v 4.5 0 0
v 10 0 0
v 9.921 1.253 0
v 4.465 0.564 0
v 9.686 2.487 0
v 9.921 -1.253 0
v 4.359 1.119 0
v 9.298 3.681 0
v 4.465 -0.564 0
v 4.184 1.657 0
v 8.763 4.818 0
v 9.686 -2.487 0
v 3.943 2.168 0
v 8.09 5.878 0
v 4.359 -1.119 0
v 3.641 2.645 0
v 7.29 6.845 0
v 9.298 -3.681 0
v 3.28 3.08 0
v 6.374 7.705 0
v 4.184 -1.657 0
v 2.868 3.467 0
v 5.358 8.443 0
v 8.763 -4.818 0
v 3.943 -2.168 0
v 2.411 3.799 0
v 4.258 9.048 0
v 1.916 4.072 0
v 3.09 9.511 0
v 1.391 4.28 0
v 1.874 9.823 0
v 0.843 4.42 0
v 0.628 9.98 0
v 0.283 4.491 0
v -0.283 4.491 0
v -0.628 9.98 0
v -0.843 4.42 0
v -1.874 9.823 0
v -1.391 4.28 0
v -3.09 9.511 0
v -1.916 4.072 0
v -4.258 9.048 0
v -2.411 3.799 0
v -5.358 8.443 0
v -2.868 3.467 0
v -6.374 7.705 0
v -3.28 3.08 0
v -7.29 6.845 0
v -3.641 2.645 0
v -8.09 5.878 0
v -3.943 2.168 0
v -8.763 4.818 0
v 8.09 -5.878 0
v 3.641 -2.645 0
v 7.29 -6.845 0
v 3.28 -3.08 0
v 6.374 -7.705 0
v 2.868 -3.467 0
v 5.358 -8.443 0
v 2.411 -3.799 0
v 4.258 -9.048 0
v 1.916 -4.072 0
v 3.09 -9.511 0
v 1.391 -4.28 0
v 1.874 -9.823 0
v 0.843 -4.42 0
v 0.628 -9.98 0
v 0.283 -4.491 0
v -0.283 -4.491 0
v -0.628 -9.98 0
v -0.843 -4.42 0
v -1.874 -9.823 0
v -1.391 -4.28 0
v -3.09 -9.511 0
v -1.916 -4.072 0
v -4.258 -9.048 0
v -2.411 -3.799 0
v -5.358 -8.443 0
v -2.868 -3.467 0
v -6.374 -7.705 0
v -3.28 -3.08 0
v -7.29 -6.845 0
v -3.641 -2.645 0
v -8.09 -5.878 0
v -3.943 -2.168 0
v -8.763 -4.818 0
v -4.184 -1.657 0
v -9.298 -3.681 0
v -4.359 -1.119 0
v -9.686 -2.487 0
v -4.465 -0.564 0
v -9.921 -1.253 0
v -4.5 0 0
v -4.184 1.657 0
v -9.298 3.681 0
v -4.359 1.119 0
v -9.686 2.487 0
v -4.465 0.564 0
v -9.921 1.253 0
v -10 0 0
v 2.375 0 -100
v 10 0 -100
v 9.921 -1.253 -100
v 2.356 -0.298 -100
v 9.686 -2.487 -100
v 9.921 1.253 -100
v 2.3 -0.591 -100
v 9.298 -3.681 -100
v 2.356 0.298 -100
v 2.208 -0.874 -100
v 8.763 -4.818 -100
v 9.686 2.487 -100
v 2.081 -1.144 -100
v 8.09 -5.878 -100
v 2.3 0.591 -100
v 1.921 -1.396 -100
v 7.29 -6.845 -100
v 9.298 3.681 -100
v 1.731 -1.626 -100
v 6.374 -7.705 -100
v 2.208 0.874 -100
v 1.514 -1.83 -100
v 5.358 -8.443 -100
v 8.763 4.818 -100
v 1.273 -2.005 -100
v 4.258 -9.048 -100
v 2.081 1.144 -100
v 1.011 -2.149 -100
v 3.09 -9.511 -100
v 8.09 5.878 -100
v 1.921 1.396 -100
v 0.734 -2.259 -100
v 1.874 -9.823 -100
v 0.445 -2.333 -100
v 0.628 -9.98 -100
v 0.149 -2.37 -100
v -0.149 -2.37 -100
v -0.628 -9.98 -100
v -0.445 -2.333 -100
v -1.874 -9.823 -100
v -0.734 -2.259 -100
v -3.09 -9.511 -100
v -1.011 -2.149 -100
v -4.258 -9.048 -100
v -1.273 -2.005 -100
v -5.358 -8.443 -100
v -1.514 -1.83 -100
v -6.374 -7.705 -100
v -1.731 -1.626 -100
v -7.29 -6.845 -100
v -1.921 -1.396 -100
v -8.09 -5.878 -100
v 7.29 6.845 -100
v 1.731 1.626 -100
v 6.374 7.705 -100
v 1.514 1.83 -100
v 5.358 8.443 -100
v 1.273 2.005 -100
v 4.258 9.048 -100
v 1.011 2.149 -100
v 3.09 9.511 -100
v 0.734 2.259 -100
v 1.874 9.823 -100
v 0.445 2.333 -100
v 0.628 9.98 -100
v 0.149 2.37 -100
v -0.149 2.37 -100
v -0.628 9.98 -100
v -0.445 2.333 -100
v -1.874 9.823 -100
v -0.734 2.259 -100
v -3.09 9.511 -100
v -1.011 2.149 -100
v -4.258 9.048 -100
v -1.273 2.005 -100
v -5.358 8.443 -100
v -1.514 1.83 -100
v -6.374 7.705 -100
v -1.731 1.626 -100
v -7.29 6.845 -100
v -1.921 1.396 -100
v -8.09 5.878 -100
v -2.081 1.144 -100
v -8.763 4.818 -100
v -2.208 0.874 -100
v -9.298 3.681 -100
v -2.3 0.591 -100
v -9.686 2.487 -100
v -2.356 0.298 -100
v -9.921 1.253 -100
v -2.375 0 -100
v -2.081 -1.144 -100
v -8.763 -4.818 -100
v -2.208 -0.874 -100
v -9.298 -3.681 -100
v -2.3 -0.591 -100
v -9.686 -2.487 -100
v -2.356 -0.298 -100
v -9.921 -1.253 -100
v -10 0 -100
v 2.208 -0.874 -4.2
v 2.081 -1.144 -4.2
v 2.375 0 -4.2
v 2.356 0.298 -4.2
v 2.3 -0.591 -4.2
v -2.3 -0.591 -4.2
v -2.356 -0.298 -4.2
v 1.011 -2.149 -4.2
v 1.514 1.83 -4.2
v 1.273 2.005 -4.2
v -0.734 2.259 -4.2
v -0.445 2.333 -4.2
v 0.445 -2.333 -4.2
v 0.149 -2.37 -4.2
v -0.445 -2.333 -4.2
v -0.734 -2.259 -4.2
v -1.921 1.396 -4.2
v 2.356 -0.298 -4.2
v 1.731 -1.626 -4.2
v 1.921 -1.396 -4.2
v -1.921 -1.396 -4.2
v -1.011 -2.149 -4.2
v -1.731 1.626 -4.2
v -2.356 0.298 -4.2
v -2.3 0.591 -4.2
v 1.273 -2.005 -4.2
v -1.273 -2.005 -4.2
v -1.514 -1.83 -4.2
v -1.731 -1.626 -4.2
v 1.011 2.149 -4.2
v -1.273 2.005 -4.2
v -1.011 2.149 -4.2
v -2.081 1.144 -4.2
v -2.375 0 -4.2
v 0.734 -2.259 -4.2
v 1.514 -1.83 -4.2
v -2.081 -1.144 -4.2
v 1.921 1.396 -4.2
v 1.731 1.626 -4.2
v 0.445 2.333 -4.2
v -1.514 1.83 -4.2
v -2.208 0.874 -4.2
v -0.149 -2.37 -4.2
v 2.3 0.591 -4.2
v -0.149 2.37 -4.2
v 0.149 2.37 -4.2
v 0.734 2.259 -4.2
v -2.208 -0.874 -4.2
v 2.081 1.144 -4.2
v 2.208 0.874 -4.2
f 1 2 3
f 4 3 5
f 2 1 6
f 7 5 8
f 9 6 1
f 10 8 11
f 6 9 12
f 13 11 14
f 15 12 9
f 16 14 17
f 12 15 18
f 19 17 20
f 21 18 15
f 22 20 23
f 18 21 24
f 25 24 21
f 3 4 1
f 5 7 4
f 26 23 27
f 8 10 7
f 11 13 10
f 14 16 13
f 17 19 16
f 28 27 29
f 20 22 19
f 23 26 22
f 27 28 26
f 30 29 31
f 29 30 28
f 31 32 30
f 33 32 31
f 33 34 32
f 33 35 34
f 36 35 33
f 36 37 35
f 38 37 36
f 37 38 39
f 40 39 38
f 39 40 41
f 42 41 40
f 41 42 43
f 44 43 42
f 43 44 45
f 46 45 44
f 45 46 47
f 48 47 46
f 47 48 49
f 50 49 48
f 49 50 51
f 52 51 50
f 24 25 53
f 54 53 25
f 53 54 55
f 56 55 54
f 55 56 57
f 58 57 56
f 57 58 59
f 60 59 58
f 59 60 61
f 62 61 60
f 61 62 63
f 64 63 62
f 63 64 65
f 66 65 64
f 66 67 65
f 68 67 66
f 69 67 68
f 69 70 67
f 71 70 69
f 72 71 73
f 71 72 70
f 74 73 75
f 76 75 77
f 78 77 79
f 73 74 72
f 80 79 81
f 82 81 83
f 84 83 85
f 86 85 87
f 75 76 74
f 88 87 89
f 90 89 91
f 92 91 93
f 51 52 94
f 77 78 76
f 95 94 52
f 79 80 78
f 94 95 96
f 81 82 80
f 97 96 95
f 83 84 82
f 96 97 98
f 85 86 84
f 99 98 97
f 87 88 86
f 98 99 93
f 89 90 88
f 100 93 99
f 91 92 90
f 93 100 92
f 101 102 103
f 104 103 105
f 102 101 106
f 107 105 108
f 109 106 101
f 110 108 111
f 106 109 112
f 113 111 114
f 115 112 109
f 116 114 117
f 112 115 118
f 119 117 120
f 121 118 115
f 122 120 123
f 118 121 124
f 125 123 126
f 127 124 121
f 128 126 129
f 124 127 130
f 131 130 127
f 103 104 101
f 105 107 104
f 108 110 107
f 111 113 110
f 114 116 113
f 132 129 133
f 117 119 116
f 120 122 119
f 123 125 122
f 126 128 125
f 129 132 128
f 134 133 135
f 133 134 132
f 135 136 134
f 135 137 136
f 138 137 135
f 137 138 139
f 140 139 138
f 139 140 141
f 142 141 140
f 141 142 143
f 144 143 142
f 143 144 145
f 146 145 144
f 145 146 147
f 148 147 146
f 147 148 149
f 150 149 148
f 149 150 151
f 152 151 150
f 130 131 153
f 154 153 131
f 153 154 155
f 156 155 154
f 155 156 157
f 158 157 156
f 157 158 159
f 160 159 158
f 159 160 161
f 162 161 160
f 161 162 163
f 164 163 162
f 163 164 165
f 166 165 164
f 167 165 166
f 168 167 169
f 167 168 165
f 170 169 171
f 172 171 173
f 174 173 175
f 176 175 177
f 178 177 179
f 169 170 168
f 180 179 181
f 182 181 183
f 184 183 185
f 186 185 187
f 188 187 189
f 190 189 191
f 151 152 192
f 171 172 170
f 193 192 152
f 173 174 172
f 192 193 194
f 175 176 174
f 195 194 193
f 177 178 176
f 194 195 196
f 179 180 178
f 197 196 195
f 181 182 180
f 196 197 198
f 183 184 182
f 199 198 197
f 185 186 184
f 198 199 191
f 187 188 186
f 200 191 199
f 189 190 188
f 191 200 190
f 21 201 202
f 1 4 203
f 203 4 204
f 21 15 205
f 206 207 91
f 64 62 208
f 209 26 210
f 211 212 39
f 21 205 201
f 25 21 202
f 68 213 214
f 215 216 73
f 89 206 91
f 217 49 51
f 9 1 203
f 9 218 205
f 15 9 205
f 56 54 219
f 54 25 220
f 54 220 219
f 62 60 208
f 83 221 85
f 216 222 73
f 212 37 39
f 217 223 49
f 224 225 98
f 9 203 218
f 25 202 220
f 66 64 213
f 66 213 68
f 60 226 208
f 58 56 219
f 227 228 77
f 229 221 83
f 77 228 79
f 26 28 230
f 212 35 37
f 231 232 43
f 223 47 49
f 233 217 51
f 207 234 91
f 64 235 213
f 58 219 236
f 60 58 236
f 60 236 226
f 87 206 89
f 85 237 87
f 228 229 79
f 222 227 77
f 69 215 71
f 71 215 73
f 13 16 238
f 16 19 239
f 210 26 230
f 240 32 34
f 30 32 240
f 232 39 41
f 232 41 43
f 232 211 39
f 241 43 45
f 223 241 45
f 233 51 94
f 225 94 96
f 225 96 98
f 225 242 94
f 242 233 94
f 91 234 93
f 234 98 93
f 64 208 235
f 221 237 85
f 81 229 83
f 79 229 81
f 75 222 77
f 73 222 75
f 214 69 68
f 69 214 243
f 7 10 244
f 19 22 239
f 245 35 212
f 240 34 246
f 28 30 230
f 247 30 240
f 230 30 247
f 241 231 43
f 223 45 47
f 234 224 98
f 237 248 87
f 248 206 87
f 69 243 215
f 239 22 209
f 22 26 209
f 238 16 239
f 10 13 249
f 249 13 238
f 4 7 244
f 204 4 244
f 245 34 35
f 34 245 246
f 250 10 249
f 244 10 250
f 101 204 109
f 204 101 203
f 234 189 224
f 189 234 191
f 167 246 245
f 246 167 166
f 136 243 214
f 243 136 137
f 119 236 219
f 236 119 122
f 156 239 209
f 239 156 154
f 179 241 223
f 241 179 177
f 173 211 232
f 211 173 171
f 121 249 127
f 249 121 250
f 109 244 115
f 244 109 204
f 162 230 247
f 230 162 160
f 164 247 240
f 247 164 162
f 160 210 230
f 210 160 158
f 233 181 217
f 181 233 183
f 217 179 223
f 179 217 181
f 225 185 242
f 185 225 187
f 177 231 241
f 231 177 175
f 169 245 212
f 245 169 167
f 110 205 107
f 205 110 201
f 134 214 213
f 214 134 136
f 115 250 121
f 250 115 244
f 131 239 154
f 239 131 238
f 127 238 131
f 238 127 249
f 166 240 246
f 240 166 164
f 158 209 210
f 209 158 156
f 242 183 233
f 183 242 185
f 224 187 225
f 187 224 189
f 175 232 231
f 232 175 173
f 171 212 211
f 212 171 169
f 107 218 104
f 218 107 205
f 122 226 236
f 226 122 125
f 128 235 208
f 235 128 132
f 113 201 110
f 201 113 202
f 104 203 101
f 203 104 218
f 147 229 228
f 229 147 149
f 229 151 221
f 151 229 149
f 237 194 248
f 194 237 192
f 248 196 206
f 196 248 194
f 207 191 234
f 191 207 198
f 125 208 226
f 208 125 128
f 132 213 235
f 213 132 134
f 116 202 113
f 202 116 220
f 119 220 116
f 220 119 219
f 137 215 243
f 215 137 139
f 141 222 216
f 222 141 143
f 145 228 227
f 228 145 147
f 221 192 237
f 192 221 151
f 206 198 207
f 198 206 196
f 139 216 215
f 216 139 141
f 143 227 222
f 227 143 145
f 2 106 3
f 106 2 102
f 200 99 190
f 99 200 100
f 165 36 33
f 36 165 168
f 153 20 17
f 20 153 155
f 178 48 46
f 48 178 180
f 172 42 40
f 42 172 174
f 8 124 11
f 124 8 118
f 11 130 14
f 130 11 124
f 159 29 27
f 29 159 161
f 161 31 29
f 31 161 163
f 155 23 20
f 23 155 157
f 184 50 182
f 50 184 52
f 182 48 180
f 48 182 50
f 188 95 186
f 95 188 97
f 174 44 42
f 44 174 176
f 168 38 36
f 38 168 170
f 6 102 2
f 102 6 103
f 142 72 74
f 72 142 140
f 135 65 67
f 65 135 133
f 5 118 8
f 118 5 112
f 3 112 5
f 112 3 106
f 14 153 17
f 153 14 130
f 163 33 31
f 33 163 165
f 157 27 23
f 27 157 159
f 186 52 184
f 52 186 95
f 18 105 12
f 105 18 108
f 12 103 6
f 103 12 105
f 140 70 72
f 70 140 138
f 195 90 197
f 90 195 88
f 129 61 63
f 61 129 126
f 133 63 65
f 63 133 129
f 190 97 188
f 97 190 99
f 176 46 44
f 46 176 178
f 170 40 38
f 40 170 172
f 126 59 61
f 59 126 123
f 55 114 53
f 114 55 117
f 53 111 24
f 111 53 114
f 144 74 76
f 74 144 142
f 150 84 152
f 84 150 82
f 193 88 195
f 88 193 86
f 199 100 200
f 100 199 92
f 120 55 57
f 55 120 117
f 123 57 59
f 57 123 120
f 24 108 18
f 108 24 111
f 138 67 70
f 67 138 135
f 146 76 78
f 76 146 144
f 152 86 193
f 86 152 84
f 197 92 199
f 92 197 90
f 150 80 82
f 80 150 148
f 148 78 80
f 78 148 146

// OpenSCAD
$fn = 50;


difference() {
	union() {
		translate(v = [0, 0, -100.0000000000]) {
			cylinder(h = 100, r = 10.0000000000);
		}
	}
	union() {
		translate(v = [0, 0, 0]) {
			rotate(a = [0, 0, 0]) {
				difference() {
					union() {
						#translate(v = [0, 0, -100.0000000000]) {
							cylinder(h = 100, r = 2.2500000000);
						}
						#translate(v = [0, 0, -4.2000000000]) {
							cylinder(h = 4.2000000000, r1 = 2.3750000000, r2 = 4.5000000000);
						}
						#translate(v = [0, 0, -100.0000000000]) {
							cylinder(h = 100, r = 2.3750000000);
						}
						#translate(v = [0, 0, -100.0000000000]) {
							cylinder(h = 100, r = 2.2500000000);
						}
					}
					union();
				}
			}
		}
	}
}
